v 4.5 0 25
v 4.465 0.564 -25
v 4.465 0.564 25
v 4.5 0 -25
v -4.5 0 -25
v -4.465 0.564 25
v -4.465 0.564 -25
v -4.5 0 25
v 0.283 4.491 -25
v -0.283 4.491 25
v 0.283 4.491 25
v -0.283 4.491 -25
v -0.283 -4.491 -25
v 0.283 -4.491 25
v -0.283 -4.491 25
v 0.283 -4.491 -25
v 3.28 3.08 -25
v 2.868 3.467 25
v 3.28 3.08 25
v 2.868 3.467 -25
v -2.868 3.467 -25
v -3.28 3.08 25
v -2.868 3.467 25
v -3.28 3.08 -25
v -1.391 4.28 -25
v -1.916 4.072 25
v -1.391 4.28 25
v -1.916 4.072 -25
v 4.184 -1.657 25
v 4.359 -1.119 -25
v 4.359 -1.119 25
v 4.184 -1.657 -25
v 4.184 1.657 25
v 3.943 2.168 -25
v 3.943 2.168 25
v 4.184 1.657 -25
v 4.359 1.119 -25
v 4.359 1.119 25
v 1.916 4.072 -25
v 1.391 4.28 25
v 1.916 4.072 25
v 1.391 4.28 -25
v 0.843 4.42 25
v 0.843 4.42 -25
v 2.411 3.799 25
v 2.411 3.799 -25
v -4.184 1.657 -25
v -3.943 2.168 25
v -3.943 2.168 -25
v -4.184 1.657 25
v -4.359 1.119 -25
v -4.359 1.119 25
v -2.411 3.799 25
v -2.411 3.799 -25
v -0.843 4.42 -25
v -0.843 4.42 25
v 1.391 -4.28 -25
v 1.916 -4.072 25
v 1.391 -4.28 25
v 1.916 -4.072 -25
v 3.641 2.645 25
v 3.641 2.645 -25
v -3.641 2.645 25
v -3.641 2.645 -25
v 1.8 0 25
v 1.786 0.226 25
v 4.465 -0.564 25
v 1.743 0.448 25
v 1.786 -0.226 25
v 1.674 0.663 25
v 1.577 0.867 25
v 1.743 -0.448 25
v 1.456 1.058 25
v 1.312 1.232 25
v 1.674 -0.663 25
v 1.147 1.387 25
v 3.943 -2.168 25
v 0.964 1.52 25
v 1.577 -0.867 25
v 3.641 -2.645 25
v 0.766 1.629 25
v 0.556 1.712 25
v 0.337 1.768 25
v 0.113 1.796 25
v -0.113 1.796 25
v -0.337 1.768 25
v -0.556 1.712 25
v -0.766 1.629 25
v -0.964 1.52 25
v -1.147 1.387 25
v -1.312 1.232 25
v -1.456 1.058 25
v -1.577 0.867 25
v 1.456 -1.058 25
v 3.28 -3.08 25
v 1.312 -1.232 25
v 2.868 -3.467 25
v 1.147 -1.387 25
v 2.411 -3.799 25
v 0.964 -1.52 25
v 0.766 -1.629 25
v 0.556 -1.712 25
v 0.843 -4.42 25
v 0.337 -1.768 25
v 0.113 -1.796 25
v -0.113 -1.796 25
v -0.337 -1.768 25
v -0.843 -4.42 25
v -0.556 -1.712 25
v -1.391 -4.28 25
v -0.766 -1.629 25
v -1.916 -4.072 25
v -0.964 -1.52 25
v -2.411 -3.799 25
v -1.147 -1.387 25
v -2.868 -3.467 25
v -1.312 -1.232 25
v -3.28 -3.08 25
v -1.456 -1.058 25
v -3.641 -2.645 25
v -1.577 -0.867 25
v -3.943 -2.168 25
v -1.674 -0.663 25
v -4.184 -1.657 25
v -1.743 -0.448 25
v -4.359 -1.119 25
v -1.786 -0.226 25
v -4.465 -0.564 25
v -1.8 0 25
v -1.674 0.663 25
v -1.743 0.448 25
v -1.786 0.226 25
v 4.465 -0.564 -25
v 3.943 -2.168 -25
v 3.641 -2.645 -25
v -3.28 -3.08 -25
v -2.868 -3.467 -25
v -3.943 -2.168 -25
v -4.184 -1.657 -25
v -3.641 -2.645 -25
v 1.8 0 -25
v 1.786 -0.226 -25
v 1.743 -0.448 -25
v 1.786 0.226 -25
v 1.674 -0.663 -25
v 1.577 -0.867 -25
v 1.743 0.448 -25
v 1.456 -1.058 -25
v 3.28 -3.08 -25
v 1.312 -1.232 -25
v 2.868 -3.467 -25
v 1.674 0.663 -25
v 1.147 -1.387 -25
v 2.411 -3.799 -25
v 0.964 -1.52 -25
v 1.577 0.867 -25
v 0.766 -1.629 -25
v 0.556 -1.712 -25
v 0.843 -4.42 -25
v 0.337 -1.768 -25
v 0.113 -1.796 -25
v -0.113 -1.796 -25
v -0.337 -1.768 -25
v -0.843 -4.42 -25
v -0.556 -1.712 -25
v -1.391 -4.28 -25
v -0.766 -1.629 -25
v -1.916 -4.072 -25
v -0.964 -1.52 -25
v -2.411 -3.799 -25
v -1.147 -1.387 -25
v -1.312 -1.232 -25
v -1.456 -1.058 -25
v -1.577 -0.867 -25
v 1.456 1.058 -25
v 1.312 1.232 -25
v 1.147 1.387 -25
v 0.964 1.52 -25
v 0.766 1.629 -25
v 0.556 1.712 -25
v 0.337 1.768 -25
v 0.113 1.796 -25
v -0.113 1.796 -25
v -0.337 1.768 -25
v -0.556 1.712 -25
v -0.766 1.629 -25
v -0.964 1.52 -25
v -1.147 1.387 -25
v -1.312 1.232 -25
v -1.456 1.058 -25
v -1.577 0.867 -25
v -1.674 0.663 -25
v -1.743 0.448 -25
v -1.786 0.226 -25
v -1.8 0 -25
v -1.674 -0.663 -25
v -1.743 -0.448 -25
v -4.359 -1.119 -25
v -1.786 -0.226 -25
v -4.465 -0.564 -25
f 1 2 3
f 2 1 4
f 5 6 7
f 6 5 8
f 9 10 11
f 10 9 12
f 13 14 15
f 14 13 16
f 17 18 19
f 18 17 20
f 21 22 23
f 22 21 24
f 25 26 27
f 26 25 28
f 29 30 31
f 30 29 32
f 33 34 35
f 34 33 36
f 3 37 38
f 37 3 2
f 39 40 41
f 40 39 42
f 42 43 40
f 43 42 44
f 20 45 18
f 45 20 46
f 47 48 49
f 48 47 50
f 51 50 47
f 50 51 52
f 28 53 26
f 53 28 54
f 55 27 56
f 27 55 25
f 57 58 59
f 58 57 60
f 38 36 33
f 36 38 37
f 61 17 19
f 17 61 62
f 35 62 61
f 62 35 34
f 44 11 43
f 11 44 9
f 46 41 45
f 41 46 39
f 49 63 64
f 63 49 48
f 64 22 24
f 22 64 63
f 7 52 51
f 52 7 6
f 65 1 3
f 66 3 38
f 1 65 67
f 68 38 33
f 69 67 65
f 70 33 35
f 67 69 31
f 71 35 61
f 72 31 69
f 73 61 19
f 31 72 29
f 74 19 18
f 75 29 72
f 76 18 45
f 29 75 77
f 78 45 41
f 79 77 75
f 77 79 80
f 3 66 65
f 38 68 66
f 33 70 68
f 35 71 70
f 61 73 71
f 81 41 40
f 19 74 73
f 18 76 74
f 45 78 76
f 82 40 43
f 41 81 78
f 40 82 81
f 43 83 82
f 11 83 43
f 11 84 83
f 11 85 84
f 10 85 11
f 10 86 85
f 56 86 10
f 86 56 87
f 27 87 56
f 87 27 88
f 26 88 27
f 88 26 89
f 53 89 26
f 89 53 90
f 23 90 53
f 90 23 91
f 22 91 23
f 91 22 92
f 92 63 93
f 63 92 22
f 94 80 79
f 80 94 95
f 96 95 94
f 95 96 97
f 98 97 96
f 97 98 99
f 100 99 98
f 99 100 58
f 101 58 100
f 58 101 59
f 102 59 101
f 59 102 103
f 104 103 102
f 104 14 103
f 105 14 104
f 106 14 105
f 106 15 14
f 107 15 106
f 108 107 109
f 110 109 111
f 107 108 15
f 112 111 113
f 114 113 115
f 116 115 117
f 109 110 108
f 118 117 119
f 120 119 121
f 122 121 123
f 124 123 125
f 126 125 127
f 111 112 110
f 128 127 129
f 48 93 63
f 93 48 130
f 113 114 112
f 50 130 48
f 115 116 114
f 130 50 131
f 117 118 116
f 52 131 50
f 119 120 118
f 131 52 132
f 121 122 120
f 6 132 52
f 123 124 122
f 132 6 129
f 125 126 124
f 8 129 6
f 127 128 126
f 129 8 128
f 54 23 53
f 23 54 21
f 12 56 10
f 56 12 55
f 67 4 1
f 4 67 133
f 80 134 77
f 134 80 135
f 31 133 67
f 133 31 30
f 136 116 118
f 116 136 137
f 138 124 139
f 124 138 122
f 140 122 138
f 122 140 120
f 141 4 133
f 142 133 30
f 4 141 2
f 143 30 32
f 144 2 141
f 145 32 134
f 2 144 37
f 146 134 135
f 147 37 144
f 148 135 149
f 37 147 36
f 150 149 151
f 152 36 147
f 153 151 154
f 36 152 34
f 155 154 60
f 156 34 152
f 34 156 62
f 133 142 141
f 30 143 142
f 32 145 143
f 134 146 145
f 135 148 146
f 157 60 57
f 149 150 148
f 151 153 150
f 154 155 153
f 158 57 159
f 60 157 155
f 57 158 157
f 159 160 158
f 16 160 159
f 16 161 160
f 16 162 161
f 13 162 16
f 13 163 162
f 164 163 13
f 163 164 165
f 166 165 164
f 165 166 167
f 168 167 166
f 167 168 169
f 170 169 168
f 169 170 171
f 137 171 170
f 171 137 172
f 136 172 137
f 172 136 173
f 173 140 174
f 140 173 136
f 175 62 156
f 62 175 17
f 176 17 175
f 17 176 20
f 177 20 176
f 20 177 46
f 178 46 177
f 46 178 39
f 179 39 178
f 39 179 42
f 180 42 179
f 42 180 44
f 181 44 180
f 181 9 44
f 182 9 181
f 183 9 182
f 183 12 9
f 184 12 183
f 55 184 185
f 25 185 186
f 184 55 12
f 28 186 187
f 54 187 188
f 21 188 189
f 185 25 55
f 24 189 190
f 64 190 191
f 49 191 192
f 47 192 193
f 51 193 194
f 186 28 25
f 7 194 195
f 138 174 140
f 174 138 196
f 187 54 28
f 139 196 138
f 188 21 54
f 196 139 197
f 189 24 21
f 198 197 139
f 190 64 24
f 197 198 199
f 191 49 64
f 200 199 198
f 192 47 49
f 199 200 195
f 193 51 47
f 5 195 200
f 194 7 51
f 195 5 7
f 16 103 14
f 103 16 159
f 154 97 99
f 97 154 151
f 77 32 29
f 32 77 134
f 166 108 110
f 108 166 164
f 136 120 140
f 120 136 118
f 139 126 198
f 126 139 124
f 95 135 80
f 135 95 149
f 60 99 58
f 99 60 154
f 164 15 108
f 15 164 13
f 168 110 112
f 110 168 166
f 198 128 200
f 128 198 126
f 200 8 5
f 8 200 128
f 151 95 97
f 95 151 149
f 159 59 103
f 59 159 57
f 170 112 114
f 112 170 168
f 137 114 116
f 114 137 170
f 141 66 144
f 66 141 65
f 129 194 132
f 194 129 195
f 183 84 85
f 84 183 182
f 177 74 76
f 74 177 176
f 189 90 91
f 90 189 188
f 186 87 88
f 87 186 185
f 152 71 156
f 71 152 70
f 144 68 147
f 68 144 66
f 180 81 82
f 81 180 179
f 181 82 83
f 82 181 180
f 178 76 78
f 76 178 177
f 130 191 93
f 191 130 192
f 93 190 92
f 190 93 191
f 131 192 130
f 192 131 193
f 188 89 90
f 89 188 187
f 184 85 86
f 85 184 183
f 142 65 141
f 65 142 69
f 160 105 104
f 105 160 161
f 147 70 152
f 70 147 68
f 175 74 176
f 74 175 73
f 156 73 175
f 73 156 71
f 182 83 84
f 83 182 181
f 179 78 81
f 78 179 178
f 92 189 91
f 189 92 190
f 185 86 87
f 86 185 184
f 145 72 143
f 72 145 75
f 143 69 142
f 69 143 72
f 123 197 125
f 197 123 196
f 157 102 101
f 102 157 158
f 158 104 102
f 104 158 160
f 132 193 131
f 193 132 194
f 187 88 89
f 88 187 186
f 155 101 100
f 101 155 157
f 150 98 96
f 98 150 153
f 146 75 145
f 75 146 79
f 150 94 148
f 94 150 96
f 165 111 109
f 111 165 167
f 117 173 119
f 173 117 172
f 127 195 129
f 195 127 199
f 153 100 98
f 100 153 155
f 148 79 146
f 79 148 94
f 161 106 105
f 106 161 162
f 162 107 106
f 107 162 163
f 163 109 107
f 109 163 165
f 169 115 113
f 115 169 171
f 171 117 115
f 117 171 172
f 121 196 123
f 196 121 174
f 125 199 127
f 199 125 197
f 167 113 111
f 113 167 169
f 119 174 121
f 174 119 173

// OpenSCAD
$fn = 50;


difference() {
	union() {
		translate(v = [0, 0, -25.0000000000]) {
			cylinder(h = 50, r = 4.5000000000);
		}
	}
	union() {
		#translate(v = [0, 0, -100.0000000000]) {
			cylinder(h = 200, r = 1.8000000000);
		}
	}
}
